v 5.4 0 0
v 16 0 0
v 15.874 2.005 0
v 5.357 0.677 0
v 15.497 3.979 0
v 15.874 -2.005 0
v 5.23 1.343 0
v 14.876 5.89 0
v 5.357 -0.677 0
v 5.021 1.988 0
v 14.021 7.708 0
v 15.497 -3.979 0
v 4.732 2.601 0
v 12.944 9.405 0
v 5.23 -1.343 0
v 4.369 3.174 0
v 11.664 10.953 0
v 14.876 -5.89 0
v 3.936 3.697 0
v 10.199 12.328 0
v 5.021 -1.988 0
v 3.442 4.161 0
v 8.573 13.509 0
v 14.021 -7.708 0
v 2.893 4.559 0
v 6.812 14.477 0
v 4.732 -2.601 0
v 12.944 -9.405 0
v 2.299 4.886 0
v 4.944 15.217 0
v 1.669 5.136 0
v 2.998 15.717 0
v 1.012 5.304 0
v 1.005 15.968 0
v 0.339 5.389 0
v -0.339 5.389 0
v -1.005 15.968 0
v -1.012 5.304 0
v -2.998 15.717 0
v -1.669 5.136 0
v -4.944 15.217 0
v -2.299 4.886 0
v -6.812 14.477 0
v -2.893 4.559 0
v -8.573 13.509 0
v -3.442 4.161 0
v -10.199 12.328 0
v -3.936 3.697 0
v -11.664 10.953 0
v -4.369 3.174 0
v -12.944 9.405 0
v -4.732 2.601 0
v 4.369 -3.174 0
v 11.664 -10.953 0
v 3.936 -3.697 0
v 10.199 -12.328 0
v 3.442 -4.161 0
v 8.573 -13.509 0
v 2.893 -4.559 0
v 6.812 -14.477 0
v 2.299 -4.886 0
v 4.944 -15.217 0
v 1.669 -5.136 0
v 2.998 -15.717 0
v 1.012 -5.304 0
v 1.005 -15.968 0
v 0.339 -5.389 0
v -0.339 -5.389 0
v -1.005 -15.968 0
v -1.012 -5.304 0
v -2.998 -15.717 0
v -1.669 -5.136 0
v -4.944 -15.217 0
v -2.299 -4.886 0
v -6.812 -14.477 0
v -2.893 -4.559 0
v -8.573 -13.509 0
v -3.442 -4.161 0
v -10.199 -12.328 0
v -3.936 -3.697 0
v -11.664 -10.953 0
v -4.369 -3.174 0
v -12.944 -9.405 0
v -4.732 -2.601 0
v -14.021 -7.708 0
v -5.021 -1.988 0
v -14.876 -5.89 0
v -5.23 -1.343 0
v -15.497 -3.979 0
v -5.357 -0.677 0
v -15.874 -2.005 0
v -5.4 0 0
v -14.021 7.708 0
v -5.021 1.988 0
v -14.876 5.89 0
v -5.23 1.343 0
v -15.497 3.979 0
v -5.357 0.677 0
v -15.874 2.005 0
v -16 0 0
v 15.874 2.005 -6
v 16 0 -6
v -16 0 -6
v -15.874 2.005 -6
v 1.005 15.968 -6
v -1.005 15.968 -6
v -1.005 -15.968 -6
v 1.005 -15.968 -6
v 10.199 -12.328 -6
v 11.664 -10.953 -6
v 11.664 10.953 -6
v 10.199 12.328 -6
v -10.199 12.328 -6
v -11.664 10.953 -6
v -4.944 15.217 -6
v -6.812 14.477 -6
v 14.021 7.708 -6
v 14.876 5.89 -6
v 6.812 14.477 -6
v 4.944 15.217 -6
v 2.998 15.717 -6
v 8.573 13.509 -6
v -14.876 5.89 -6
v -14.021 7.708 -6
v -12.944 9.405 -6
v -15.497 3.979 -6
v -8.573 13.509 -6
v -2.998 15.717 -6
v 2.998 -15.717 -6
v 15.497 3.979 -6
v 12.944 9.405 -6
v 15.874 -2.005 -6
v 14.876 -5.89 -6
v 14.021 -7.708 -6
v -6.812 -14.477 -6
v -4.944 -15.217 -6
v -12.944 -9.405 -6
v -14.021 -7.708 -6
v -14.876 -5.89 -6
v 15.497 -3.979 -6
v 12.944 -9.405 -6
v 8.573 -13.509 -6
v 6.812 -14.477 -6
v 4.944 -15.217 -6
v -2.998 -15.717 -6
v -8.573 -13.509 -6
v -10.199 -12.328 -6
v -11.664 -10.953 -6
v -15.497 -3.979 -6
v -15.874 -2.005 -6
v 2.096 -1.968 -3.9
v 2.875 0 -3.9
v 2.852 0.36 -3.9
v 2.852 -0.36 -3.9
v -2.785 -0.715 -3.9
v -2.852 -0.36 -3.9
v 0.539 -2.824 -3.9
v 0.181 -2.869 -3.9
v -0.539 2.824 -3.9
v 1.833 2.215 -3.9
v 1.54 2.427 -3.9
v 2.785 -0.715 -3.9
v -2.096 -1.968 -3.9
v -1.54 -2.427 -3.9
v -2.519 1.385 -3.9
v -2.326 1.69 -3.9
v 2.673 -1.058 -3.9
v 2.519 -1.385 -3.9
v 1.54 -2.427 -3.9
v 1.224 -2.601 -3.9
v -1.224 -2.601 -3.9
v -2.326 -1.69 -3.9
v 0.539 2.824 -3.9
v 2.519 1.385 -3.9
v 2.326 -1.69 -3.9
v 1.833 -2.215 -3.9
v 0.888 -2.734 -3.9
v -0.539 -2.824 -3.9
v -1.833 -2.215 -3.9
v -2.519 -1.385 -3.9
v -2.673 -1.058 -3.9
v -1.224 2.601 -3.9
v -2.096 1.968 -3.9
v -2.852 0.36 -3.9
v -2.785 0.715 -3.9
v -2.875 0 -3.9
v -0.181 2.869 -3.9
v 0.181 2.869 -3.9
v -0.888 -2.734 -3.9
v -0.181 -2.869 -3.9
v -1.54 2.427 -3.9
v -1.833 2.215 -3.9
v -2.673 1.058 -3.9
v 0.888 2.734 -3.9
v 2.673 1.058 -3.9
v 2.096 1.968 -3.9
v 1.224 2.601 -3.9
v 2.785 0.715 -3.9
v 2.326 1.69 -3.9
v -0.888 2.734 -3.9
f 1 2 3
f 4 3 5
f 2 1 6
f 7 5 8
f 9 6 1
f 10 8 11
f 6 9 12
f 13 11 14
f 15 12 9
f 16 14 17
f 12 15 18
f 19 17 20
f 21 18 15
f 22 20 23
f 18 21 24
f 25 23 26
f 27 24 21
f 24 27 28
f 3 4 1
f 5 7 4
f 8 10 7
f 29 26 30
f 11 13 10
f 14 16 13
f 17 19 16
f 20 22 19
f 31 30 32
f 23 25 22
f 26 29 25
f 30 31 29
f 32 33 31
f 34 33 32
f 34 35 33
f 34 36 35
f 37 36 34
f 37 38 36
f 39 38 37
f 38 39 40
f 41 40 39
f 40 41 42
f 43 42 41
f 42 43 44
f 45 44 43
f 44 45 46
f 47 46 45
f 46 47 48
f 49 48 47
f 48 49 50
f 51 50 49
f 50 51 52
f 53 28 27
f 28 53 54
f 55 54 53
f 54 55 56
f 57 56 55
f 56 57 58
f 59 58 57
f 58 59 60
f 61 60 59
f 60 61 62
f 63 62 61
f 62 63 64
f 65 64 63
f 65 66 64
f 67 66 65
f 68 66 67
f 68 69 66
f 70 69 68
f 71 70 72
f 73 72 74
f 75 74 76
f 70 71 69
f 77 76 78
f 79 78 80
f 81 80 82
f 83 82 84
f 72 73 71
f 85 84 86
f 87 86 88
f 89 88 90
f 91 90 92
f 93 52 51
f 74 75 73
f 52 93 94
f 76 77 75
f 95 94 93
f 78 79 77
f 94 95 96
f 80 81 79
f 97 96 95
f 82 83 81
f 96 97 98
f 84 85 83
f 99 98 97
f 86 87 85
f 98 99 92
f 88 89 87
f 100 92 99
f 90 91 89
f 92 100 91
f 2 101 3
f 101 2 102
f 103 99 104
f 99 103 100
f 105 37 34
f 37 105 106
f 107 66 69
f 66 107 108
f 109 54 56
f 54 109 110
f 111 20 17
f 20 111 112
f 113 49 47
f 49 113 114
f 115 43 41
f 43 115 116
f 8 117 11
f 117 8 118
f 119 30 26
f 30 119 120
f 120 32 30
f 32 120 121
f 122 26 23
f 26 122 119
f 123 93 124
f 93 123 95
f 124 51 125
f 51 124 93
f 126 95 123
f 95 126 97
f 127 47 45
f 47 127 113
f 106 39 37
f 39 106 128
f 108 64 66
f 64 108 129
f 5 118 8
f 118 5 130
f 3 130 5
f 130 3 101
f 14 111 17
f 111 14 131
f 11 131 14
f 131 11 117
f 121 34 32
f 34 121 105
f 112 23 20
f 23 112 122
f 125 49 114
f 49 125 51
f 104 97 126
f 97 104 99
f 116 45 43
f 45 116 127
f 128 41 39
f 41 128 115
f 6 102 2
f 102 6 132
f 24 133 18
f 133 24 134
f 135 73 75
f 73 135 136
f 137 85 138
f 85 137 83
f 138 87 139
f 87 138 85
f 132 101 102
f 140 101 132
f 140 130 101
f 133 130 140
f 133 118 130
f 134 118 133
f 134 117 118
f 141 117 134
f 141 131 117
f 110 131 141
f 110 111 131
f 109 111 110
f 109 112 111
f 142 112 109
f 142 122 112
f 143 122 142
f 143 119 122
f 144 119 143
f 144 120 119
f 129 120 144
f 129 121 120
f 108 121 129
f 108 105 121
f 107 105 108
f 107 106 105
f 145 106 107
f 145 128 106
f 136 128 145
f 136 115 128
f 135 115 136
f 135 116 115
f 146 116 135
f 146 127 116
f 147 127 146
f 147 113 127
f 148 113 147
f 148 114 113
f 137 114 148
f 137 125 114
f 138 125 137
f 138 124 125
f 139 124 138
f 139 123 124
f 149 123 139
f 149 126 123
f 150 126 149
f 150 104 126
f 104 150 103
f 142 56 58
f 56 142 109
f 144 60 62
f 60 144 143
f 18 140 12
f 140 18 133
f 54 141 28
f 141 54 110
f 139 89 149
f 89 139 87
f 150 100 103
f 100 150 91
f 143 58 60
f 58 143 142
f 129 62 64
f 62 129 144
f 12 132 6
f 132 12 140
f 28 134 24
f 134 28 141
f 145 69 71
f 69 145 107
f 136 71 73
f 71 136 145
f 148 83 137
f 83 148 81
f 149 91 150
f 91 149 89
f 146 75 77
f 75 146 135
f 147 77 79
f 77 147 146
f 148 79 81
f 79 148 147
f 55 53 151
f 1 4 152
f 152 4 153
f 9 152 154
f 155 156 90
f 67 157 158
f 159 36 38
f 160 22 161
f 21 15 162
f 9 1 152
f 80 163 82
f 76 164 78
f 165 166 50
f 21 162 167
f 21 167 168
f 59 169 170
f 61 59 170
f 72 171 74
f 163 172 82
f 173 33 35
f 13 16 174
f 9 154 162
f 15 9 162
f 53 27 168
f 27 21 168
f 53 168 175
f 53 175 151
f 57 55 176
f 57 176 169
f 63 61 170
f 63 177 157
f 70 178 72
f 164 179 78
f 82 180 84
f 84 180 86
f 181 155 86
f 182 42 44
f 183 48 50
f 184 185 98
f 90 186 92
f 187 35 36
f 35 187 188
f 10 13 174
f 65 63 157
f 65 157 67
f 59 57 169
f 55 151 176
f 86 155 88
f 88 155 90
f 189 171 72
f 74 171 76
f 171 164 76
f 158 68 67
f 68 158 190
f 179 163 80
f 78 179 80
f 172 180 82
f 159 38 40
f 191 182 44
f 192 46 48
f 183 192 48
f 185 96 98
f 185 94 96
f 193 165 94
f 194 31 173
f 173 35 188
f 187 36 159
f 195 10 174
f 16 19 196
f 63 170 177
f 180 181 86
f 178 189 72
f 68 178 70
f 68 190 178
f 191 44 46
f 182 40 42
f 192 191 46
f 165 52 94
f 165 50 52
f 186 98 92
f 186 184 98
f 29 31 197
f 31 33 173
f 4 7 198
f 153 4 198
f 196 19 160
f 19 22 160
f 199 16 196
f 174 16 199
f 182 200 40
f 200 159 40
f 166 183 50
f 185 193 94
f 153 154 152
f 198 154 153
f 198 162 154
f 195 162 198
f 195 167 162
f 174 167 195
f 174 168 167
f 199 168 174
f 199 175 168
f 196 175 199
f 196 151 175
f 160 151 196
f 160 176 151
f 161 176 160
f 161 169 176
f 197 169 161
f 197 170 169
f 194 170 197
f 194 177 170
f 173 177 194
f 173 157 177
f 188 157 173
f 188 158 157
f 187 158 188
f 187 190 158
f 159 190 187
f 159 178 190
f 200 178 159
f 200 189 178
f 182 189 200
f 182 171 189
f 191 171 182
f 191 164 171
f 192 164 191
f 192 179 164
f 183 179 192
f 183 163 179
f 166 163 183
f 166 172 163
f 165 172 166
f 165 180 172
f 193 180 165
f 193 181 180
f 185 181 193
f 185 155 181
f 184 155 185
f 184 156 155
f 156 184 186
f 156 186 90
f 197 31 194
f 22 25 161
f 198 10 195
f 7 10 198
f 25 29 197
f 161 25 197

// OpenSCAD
$fn = 50;


difference() {
	union() {
		translate(v = [0, 0, -3.0000000000]) {
			cylinder(h = 3, r = 7.0000000000);
		}
		translate(v = [0, 0, -6.0000000000]) {
			cylinder(h = 6, r = 16.0000000000);
		}
	}
	union() {
		translate(v = [0, 0, 0]) {
			rotate(a = [0, 0, 0]) {
				difference() {
					union() {
						#translate(v = [0, 0, -3.0000000000]) {
							cylinder(h = 3, r = 2.6000000000);
						}
						#translate(v = [0, 0, -3.9000000000]) {
							cylinder(h = 3.9000000000, r1 = 2.8750000000, r2 = 5.4000000000);
						}
						#translate(v = [0, 0, -3.0000000000]) {
							cylinder(h = 3, r = 2.8750000000);
						}
						#translate(v = [0, 0, -3.0000000000]) {
							cylinder(h = 3, r = 2.6000000000);
						}
					}
					union();
				}
			}
		}
	}
}
